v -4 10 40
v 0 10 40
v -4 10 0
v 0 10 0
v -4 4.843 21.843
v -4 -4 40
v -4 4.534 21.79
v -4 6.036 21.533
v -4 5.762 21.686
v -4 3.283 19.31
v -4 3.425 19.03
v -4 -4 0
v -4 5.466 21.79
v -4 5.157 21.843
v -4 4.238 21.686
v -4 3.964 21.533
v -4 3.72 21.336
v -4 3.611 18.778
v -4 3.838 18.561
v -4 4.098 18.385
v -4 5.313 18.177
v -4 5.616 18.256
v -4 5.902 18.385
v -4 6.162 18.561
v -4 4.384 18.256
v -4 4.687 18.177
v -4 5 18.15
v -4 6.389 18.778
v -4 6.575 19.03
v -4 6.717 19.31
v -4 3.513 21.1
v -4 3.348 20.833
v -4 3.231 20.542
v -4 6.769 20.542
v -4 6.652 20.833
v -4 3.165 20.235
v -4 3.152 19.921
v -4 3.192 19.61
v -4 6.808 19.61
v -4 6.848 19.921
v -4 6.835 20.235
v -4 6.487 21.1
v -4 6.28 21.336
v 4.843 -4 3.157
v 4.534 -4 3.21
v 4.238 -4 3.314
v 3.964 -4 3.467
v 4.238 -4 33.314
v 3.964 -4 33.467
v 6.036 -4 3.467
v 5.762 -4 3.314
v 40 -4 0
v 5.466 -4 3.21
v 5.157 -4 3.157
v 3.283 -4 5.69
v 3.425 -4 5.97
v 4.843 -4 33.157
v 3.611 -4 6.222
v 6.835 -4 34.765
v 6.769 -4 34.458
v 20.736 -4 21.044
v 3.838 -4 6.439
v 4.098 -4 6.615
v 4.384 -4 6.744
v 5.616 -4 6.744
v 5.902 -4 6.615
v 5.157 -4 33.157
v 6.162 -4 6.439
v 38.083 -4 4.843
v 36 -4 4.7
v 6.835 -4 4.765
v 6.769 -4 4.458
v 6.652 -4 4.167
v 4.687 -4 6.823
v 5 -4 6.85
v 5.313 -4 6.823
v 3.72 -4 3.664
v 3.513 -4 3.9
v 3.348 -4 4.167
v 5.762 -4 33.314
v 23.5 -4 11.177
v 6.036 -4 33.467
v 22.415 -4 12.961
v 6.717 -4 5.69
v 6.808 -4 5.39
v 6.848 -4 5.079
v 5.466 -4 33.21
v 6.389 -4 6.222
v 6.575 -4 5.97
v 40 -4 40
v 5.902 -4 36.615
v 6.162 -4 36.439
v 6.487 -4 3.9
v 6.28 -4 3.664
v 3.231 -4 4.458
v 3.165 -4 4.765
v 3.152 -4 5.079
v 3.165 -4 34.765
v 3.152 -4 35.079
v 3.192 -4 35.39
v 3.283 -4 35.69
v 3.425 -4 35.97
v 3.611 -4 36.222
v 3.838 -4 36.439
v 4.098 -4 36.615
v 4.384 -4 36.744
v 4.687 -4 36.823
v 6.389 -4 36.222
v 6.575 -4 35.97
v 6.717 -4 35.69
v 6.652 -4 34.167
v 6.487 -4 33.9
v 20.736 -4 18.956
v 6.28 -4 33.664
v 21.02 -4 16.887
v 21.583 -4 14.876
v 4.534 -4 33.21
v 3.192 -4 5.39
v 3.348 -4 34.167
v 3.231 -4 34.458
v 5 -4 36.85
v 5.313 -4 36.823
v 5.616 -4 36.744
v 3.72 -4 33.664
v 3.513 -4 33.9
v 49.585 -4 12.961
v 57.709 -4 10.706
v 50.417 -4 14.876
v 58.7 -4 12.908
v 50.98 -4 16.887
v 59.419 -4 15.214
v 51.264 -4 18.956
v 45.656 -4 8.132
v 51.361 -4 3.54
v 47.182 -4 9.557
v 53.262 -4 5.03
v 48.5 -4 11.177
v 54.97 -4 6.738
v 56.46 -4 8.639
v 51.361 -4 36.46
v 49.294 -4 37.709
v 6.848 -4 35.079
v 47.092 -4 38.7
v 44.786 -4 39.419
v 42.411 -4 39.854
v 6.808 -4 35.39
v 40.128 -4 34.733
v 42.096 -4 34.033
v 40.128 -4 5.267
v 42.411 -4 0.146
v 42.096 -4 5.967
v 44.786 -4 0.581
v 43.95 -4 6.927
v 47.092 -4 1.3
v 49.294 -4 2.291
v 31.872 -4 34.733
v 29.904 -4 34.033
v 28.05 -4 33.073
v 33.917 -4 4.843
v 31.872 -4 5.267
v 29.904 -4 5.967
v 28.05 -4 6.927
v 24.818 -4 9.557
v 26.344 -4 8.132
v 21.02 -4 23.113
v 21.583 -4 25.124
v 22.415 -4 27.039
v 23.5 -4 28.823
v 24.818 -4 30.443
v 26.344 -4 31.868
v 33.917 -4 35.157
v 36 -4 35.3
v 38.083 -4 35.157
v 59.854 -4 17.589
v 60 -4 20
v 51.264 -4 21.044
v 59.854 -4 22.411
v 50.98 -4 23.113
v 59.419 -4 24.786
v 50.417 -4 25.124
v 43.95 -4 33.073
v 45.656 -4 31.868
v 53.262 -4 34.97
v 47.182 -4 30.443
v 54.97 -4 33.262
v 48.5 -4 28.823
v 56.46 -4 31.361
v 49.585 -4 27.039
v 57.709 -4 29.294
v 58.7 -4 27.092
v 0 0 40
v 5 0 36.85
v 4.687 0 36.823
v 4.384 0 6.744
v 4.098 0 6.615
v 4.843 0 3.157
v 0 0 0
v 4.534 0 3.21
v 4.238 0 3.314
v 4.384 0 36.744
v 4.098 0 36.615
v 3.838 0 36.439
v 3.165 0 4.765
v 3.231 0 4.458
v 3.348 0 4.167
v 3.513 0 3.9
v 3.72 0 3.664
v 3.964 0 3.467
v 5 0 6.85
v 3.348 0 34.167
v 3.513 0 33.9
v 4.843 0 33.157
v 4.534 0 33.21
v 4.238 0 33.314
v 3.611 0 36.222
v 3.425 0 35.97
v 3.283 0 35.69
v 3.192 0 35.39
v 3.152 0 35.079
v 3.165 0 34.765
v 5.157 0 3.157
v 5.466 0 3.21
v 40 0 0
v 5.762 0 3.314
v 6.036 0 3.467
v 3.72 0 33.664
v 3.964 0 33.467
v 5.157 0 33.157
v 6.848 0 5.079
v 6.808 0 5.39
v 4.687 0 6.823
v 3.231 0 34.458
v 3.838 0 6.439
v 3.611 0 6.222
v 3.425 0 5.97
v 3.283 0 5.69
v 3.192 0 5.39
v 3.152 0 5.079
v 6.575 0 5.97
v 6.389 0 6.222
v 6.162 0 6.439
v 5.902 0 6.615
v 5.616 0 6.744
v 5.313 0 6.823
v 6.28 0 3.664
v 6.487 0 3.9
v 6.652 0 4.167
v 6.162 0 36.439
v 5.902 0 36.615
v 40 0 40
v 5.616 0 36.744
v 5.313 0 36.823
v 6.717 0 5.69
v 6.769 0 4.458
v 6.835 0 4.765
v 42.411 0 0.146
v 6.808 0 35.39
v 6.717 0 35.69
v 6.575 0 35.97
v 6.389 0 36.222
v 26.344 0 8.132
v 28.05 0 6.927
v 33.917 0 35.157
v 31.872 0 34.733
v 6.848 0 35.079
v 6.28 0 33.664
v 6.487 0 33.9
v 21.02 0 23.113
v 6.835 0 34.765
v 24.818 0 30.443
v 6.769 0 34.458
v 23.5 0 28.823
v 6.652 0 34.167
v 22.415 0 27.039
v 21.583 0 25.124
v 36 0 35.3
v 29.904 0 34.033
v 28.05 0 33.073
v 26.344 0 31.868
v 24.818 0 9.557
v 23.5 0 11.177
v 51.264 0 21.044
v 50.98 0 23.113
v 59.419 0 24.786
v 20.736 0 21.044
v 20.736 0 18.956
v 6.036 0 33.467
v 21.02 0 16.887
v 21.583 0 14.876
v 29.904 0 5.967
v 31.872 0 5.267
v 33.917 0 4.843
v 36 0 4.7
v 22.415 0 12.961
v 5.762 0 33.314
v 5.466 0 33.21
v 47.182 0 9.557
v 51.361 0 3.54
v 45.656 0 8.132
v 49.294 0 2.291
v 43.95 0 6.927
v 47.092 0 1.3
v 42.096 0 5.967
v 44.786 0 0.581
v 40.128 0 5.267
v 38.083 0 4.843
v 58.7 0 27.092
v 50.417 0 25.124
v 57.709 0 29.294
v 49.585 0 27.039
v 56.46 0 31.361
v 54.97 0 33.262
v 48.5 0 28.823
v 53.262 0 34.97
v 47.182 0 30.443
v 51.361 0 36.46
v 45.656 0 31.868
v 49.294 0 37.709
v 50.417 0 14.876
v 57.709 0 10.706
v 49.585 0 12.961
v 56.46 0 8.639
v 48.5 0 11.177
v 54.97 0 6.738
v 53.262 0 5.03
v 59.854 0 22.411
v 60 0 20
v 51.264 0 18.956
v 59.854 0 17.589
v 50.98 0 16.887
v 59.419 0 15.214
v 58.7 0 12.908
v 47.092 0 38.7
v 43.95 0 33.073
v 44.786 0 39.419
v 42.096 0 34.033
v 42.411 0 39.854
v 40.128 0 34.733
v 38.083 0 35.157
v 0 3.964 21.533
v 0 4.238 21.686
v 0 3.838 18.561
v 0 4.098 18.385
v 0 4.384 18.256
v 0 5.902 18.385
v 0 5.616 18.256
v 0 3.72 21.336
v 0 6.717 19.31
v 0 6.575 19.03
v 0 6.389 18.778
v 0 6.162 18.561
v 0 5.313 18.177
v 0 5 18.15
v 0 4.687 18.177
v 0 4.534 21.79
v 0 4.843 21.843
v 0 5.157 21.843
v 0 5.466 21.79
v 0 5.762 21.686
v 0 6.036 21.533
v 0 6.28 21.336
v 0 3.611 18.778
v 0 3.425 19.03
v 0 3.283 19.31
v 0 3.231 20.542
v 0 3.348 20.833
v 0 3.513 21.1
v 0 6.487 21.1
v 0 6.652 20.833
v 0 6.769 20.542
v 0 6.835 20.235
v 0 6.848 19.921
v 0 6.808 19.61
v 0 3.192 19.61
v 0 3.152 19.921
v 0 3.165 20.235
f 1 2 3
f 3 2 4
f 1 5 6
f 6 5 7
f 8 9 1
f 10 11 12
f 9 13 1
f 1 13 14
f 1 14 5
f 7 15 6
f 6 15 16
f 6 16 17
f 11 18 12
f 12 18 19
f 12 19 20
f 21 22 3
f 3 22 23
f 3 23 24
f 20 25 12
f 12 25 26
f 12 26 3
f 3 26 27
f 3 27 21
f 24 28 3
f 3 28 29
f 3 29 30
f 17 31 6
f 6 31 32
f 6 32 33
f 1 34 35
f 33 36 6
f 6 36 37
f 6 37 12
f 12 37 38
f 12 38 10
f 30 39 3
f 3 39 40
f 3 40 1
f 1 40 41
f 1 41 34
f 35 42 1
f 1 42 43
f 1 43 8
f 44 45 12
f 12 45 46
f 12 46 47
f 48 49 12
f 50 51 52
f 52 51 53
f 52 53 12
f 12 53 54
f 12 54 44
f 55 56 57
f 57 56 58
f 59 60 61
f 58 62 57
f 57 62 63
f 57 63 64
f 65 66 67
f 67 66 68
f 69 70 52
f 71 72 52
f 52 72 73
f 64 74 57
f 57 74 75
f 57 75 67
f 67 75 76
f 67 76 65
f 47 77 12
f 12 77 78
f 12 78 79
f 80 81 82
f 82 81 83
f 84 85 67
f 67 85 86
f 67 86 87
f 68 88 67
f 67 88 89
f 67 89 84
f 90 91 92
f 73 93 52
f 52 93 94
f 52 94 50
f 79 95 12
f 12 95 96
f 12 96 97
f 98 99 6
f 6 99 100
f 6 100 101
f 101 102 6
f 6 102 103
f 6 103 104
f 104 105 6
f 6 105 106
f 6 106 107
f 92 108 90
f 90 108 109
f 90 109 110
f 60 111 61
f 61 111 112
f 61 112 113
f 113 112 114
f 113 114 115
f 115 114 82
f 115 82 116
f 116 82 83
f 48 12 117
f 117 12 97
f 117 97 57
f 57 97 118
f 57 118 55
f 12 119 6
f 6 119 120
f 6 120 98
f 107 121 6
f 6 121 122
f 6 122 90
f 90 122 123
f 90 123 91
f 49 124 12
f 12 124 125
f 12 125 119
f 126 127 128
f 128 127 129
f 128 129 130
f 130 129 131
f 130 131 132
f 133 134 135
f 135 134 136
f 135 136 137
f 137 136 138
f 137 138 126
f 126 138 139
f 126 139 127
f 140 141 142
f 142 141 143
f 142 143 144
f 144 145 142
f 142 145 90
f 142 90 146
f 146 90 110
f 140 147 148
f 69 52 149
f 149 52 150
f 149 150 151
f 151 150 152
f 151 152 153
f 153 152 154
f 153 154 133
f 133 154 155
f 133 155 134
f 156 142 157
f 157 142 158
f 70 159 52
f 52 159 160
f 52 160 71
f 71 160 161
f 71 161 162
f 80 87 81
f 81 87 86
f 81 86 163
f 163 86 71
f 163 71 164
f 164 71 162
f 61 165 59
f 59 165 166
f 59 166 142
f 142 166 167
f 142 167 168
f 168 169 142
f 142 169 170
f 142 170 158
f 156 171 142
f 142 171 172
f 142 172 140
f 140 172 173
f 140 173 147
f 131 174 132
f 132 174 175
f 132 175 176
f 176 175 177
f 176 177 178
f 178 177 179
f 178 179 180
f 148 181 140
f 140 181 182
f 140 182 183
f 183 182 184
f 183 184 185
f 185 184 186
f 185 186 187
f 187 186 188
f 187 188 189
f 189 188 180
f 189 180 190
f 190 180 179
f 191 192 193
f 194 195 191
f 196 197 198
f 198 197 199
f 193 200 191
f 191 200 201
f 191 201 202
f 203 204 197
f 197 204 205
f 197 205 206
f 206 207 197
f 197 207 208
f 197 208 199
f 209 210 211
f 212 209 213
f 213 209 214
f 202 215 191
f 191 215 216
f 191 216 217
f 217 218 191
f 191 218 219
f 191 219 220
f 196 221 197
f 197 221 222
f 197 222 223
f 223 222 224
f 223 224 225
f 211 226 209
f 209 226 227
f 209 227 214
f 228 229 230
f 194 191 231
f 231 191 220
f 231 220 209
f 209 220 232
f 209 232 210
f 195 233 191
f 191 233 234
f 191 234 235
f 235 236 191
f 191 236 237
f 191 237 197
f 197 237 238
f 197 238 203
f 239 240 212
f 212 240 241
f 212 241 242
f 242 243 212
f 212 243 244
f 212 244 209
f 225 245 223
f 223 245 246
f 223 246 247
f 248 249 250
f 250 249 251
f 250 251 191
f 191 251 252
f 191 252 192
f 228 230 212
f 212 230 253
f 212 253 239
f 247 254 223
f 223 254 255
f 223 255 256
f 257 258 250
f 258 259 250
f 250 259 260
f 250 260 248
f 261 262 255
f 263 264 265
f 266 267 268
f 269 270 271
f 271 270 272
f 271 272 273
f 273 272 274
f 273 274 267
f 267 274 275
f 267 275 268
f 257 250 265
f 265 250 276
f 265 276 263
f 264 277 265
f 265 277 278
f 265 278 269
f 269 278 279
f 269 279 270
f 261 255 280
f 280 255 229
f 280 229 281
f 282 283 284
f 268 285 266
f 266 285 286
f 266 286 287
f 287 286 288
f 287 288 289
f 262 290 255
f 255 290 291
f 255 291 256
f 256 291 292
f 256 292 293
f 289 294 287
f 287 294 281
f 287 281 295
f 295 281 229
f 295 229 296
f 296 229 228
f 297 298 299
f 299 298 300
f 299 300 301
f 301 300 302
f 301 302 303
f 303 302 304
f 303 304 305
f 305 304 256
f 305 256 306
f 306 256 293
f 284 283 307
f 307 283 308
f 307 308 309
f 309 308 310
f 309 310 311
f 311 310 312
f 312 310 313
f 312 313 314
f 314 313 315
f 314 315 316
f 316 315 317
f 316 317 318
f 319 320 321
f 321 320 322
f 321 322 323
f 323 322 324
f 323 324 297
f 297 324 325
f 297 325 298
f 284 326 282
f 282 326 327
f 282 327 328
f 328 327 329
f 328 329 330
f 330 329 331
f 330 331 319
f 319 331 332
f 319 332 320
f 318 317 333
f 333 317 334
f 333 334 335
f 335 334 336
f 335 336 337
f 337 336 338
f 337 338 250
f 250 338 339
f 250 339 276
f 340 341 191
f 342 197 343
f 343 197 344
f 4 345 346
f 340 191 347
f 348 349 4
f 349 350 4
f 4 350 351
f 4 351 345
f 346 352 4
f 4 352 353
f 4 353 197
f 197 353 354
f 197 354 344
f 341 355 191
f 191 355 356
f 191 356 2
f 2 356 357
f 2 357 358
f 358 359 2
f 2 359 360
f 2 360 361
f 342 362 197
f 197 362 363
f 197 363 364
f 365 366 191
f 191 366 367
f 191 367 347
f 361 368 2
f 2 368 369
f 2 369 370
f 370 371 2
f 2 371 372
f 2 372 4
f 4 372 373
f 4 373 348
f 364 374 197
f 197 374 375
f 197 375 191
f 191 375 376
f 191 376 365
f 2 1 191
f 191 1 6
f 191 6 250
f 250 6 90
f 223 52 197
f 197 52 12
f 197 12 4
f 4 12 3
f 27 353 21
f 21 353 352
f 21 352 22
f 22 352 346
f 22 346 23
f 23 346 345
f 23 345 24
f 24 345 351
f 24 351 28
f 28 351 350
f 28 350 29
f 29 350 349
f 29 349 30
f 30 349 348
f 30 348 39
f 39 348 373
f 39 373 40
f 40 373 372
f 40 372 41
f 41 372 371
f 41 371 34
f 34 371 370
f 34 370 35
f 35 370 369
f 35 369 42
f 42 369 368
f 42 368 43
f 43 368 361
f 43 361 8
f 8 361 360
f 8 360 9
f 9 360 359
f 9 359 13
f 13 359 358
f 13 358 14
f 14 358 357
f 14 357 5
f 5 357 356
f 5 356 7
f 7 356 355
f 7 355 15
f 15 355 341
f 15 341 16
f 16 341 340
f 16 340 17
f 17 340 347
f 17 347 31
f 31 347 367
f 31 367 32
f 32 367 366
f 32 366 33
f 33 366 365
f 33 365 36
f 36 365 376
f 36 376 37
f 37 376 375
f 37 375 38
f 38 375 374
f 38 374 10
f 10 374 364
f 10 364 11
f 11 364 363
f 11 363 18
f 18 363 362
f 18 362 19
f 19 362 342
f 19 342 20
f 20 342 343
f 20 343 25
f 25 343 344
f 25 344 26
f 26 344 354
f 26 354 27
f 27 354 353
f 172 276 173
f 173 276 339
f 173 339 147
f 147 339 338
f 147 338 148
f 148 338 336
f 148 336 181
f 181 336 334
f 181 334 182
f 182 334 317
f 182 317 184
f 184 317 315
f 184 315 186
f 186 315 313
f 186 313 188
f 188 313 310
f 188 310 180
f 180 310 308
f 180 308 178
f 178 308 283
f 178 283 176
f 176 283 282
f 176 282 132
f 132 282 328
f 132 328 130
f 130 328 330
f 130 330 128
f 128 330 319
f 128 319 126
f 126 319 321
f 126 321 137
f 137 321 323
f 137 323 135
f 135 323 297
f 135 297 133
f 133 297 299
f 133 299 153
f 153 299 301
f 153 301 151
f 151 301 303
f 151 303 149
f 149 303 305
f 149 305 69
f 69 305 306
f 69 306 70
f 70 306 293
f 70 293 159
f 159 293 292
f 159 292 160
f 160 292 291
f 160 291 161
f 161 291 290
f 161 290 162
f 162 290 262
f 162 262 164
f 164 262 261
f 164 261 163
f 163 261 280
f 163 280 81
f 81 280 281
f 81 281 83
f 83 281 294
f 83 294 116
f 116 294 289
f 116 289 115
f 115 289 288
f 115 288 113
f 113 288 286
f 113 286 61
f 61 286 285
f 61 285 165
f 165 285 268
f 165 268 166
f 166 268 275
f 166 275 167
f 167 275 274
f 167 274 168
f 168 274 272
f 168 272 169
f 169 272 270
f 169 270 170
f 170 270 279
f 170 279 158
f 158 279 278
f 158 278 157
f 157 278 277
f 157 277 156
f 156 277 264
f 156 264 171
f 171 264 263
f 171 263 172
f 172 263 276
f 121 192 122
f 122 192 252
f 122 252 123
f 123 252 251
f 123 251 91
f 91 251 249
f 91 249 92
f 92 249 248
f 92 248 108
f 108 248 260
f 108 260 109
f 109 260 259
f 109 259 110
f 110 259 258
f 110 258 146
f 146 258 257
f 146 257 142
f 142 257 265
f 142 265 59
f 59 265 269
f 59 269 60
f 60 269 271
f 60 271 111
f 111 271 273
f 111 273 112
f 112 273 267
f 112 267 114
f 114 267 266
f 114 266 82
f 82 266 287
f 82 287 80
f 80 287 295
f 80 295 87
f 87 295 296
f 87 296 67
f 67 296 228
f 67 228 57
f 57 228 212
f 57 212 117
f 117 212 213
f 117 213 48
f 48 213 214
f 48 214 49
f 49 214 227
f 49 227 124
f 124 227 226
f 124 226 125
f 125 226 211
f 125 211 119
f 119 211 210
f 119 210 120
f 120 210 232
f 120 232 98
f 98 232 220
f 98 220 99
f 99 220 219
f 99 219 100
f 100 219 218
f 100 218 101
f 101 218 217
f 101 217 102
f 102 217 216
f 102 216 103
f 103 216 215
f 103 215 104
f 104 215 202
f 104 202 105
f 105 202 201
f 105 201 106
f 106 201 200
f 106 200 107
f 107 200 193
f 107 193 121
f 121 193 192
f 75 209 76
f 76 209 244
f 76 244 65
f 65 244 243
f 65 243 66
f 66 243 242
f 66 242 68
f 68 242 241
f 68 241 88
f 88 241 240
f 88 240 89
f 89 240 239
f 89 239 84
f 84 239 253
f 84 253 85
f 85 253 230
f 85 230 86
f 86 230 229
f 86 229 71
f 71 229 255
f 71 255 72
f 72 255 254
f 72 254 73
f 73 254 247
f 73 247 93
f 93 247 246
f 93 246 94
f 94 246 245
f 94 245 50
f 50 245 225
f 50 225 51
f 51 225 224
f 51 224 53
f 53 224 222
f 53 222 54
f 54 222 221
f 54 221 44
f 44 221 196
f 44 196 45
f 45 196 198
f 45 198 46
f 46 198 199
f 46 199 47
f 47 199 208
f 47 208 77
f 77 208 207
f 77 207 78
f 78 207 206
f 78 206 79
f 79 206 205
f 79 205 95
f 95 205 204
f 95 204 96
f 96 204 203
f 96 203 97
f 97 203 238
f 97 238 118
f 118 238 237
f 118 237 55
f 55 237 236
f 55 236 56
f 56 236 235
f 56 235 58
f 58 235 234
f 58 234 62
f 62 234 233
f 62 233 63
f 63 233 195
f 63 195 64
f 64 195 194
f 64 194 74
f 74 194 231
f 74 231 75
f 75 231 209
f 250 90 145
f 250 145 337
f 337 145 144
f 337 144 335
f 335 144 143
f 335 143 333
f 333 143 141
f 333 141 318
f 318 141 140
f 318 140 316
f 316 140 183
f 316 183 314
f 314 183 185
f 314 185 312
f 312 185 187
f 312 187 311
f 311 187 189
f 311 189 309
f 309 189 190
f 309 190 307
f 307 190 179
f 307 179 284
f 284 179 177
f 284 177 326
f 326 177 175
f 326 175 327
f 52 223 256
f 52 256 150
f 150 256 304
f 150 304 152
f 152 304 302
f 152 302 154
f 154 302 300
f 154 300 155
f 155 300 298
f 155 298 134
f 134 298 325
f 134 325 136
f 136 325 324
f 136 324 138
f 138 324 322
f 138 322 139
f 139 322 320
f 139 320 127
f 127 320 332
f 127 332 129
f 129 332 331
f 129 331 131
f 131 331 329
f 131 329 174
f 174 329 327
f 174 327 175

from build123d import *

# Parameters (mm, degrees)
EXTRUDE_1_DEPTH     = 40
SKETCH_2_R          = 1.85
CUT_EXTRUDE_1_DEPTH = 40
SKETCH_4_R          = 15.3
SKETCH_4_R_2        = 1.85
CUT_EXTRUDE_2_DEPTH = 40
FILLET_1_R          = 20


with BuildPart() as part:
    # ｽｹｯﾁ1 → ﾎﾞｽ - 押し出し1 (new body)
    with BuildSketch(Plane.XY):
        Polygon((0, 10), (0, 0), (60, 0), (60, -4), (-4, -4), (-4, 10), align=None)
    extrude(amount=EXTRUDE_1_DEPTH)

    # ｽｹｯﾁ2 → ｶｯﾄ - 押し出し1 (cut)
    with BuildSketch(Plane(origin=(0, 0, 0), x_dir=(0, 0, -1), z_dir=(1, 0, 0))):
        with Locations((-20, 5)):
            Circle(SKETCH_2_R)
    extrude(amount=-CUT_EXTRUDE_1_DEPTH, mode=Mode.SUBTRACT)

    # ｽｹｯﾁ4 → ｶｯﾄ - 押し出し2 (cut)
    with BuildSketch(Plane(origin=(0, 0, 0), x_dir=(1, 0, 0), z_dir=(0, 1, 0))):
        with Locations(Location((36, -20, 0), (0, 0, 270))):
            Circle(SKETCH_4_R)
        with Locations(Location((5, -5, 0), (0, 0, 270))):
            Circle(SKETCH_4_R_2)
        with Locations(Location((5, -35, 0), (0, 0, 270))):
            Circle(SKETCH_4_R_2)
    extrude(amount=-CUT_EXTRUDE_2_DEPTH, mode=Mode.SUBTRACT)

    # ﾌｨﾚｯﾄ1
    fillet_1_edges = [part.edges().sort_by_distance(p)[0] for p in [
        (60, -2, 0),
        (60, -2, 40),
    ]]
    fillet(fillet_1_edges, radius=FILLET_1_R - 0.0001)  # a hair under: the kernel refuses the full size


solid = part.part
